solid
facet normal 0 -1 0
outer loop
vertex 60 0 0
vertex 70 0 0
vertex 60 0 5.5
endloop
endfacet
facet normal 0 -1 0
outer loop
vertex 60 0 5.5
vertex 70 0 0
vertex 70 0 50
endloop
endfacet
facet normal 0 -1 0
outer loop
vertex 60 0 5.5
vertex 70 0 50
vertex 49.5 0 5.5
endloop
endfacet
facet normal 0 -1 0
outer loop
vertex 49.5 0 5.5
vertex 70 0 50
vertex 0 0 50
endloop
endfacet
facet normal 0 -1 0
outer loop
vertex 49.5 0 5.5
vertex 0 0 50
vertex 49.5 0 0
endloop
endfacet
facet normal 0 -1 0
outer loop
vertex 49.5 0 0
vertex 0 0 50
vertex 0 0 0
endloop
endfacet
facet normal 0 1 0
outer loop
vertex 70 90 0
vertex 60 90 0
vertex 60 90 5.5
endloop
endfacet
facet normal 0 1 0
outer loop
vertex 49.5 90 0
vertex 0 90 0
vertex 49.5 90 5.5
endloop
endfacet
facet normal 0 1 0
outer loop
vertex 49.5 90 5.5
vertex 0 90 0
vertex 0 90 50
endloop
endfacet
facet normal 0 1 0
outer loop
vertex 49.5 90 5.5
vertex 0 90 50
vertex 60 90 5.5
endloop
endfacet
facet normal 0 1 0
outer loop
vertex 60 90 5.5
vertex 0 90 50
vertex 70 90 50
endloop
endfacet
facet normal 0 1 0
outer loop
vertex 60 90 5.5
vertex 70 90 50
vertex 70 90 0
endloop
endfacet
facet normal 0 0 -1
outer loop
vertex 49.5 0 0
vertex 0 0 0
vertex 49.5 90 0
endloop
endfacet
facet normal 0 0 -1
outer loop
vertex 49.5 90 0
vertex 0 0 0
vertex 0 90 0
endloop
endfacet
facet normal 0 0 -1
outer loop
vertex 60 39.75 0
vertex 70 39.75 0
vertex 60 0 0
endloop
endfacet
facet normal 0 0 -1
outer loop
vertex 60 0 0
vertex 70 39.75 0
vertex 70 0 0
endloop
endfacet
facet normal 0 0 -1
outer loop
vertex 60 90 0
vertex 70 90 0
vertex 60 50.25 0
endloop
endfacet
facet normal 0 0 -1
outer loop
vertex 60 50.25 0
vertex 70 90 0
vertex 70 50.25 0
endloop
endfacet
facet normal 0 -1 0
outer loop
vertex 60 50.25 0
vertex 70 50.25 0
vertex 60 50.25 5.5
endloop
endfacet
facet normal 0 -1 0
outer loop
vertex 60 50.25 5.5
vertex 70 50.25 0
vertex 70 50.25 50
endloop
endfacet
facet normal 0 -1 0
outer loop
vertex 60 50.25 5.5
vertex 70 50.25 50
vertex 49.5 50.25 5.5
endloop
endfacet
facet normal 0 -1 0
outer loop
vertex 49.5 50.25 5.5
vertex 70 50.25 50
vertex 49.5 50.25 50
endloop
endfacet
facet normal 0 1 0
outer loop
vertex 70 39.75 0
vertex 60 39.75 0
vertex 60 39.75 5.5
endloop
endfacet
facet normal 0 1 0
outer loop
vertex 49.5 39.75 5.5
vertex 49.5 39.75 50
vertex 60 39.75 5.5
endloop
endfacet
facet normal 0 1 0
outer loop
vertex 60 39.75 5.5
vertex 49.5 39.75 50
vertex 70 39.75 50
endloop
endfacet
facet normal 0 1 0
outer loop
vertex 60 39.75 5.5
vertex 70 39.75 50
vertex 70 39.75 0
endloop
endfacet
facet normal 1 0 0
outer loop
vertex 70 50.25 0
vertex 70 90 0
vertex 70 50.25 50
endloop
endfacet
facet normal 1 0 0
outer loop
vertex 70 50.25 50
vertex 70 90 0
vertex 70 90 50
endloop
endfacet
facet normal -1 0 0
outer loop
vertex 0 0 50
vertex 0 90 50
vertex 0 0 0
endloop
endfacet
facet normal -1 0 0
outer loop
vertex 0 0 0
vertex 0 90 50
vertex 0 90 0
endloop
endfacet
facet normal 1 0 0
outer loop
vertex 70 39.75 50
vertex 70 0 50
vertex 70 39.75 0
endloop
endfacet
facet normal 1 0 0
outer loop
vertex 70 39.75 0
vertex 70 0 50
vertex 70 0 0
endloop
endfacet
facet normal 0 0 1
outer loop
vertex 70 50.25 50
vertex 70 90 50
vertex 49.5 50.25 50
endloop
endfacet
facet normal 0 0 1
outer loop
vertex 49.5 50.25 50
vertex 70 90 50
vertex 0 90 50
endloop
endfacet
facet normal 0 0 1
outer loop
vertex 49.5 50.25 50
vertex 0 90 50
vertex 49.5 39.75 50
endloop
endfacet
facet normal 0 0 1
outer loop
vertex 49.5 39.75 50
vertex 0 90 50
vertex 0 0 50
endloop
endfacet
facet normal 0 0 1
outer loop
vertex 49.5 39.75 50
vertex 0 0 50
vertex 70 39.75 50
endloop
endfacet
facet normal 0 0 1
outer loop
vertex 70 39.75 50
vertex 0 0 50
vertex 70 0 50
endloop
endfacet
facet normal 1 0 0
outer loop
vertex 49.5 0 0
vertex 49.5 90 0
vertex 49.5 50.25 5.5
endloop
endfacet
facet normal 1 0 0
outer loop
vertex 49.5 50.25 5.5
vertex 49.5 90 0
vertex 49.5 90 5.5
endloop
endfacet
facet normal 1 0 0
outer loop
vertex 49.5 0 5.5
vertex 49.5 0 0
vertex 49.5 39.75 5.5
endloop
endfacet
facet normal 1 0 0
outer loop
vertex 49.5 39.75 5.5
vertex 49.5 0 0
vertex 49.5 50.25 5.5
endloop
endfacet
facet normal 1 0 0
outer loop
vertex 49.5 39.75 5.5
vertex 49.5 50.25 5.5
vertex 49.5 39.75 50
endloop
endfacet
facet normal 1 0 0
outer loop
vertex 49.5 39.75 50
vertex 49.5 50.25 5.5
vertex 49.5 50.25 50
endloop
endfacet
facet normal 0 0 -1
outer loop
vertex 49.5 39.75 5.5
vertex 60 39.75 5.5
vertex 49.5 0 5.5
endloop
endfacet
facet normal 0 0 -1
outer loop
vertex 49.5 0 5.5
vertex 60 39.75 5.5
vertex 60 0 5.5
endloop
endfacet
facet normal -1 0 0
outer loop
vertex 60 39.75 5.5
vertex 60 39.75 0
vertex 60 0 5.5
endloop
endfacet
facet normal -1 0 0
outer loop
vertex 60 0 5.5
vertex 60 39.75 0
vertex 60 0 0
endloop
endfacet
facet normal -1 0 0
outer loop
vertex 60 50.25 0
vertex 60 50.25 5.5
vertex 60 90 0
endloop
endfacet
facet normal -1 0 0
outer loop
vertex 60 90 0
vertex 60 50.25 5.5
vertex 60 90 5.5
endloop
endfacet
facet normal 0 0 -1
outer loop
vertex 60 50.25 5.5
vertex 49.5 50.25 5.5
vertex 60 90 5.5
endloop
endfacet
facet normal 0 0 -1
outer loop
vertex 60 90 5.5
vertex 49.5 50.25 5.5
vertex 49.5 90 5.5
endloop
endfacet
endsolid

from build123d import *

# Parameters (mm, degrees)
SKICA1_W                      = 70
SKICA1_H                      = 90
P_IDAT_VYSUNUT_M1_DEPTH       = 50
SKICA7_W                      = 20.5
SKICA7_H                      = 10.5
ODEBRAT_VYSUNUT_M3_DEPTH      = 50
ODEBRAT_VYSUNUT_M4_DEPTH      = 60
ODEBRAT_VYSUNUT_M4_DEPTH_BACK = 50
SKICA9_W                      = 10.5
SKICA9_H                      = 5.5


with BuildPart() as part:
    # Skica1 → Přidat vysunutím1 (new body)
    with BuildSketch(Plane.XY):
        with Locations((35, 45)):
            Rectangle(SKICA1_W, SKICA1_H)
    extrude(amount=P_IDAT_VYSUNUT_M1_DEPTH)

    # Skica7 → Odebrat vysunutím3 (cut)
    with BuildSketch(Plane(origin=(0, 0, 0), x_dir=(-1, 0, 0), z_dir=(0, 0, -1))):
        with Locations((-59.75, 45)):
            Rectangle(SKICA7_W, SKICA7_H)
    extrude(amount=-ODEBRAT_VYSUNUT_M3_DEPTH, mode=Mode.SUBTRACT)

    # Skica9 → Odebrat vysunutím4 (cut, two sides: drawn at the far end of the back side and taken through both)
    with BuildSketch(Plane.XZ.offset(-50.25).offset(-ODEBRAT_VYSUNUT_M4_DEPTH_BACK)):
        with Locations((54.75, 2.75)):
            Rectangle(SKICA9_W, SKICA9_H)
    extrude(amount=ODEBRAT_VYSUNUT_M4_DEPTH + ODEBRAT_VYSUNUT_M4_DEPTH_BACK, mode=Mode.SUBTRACT)


solid = part.part
